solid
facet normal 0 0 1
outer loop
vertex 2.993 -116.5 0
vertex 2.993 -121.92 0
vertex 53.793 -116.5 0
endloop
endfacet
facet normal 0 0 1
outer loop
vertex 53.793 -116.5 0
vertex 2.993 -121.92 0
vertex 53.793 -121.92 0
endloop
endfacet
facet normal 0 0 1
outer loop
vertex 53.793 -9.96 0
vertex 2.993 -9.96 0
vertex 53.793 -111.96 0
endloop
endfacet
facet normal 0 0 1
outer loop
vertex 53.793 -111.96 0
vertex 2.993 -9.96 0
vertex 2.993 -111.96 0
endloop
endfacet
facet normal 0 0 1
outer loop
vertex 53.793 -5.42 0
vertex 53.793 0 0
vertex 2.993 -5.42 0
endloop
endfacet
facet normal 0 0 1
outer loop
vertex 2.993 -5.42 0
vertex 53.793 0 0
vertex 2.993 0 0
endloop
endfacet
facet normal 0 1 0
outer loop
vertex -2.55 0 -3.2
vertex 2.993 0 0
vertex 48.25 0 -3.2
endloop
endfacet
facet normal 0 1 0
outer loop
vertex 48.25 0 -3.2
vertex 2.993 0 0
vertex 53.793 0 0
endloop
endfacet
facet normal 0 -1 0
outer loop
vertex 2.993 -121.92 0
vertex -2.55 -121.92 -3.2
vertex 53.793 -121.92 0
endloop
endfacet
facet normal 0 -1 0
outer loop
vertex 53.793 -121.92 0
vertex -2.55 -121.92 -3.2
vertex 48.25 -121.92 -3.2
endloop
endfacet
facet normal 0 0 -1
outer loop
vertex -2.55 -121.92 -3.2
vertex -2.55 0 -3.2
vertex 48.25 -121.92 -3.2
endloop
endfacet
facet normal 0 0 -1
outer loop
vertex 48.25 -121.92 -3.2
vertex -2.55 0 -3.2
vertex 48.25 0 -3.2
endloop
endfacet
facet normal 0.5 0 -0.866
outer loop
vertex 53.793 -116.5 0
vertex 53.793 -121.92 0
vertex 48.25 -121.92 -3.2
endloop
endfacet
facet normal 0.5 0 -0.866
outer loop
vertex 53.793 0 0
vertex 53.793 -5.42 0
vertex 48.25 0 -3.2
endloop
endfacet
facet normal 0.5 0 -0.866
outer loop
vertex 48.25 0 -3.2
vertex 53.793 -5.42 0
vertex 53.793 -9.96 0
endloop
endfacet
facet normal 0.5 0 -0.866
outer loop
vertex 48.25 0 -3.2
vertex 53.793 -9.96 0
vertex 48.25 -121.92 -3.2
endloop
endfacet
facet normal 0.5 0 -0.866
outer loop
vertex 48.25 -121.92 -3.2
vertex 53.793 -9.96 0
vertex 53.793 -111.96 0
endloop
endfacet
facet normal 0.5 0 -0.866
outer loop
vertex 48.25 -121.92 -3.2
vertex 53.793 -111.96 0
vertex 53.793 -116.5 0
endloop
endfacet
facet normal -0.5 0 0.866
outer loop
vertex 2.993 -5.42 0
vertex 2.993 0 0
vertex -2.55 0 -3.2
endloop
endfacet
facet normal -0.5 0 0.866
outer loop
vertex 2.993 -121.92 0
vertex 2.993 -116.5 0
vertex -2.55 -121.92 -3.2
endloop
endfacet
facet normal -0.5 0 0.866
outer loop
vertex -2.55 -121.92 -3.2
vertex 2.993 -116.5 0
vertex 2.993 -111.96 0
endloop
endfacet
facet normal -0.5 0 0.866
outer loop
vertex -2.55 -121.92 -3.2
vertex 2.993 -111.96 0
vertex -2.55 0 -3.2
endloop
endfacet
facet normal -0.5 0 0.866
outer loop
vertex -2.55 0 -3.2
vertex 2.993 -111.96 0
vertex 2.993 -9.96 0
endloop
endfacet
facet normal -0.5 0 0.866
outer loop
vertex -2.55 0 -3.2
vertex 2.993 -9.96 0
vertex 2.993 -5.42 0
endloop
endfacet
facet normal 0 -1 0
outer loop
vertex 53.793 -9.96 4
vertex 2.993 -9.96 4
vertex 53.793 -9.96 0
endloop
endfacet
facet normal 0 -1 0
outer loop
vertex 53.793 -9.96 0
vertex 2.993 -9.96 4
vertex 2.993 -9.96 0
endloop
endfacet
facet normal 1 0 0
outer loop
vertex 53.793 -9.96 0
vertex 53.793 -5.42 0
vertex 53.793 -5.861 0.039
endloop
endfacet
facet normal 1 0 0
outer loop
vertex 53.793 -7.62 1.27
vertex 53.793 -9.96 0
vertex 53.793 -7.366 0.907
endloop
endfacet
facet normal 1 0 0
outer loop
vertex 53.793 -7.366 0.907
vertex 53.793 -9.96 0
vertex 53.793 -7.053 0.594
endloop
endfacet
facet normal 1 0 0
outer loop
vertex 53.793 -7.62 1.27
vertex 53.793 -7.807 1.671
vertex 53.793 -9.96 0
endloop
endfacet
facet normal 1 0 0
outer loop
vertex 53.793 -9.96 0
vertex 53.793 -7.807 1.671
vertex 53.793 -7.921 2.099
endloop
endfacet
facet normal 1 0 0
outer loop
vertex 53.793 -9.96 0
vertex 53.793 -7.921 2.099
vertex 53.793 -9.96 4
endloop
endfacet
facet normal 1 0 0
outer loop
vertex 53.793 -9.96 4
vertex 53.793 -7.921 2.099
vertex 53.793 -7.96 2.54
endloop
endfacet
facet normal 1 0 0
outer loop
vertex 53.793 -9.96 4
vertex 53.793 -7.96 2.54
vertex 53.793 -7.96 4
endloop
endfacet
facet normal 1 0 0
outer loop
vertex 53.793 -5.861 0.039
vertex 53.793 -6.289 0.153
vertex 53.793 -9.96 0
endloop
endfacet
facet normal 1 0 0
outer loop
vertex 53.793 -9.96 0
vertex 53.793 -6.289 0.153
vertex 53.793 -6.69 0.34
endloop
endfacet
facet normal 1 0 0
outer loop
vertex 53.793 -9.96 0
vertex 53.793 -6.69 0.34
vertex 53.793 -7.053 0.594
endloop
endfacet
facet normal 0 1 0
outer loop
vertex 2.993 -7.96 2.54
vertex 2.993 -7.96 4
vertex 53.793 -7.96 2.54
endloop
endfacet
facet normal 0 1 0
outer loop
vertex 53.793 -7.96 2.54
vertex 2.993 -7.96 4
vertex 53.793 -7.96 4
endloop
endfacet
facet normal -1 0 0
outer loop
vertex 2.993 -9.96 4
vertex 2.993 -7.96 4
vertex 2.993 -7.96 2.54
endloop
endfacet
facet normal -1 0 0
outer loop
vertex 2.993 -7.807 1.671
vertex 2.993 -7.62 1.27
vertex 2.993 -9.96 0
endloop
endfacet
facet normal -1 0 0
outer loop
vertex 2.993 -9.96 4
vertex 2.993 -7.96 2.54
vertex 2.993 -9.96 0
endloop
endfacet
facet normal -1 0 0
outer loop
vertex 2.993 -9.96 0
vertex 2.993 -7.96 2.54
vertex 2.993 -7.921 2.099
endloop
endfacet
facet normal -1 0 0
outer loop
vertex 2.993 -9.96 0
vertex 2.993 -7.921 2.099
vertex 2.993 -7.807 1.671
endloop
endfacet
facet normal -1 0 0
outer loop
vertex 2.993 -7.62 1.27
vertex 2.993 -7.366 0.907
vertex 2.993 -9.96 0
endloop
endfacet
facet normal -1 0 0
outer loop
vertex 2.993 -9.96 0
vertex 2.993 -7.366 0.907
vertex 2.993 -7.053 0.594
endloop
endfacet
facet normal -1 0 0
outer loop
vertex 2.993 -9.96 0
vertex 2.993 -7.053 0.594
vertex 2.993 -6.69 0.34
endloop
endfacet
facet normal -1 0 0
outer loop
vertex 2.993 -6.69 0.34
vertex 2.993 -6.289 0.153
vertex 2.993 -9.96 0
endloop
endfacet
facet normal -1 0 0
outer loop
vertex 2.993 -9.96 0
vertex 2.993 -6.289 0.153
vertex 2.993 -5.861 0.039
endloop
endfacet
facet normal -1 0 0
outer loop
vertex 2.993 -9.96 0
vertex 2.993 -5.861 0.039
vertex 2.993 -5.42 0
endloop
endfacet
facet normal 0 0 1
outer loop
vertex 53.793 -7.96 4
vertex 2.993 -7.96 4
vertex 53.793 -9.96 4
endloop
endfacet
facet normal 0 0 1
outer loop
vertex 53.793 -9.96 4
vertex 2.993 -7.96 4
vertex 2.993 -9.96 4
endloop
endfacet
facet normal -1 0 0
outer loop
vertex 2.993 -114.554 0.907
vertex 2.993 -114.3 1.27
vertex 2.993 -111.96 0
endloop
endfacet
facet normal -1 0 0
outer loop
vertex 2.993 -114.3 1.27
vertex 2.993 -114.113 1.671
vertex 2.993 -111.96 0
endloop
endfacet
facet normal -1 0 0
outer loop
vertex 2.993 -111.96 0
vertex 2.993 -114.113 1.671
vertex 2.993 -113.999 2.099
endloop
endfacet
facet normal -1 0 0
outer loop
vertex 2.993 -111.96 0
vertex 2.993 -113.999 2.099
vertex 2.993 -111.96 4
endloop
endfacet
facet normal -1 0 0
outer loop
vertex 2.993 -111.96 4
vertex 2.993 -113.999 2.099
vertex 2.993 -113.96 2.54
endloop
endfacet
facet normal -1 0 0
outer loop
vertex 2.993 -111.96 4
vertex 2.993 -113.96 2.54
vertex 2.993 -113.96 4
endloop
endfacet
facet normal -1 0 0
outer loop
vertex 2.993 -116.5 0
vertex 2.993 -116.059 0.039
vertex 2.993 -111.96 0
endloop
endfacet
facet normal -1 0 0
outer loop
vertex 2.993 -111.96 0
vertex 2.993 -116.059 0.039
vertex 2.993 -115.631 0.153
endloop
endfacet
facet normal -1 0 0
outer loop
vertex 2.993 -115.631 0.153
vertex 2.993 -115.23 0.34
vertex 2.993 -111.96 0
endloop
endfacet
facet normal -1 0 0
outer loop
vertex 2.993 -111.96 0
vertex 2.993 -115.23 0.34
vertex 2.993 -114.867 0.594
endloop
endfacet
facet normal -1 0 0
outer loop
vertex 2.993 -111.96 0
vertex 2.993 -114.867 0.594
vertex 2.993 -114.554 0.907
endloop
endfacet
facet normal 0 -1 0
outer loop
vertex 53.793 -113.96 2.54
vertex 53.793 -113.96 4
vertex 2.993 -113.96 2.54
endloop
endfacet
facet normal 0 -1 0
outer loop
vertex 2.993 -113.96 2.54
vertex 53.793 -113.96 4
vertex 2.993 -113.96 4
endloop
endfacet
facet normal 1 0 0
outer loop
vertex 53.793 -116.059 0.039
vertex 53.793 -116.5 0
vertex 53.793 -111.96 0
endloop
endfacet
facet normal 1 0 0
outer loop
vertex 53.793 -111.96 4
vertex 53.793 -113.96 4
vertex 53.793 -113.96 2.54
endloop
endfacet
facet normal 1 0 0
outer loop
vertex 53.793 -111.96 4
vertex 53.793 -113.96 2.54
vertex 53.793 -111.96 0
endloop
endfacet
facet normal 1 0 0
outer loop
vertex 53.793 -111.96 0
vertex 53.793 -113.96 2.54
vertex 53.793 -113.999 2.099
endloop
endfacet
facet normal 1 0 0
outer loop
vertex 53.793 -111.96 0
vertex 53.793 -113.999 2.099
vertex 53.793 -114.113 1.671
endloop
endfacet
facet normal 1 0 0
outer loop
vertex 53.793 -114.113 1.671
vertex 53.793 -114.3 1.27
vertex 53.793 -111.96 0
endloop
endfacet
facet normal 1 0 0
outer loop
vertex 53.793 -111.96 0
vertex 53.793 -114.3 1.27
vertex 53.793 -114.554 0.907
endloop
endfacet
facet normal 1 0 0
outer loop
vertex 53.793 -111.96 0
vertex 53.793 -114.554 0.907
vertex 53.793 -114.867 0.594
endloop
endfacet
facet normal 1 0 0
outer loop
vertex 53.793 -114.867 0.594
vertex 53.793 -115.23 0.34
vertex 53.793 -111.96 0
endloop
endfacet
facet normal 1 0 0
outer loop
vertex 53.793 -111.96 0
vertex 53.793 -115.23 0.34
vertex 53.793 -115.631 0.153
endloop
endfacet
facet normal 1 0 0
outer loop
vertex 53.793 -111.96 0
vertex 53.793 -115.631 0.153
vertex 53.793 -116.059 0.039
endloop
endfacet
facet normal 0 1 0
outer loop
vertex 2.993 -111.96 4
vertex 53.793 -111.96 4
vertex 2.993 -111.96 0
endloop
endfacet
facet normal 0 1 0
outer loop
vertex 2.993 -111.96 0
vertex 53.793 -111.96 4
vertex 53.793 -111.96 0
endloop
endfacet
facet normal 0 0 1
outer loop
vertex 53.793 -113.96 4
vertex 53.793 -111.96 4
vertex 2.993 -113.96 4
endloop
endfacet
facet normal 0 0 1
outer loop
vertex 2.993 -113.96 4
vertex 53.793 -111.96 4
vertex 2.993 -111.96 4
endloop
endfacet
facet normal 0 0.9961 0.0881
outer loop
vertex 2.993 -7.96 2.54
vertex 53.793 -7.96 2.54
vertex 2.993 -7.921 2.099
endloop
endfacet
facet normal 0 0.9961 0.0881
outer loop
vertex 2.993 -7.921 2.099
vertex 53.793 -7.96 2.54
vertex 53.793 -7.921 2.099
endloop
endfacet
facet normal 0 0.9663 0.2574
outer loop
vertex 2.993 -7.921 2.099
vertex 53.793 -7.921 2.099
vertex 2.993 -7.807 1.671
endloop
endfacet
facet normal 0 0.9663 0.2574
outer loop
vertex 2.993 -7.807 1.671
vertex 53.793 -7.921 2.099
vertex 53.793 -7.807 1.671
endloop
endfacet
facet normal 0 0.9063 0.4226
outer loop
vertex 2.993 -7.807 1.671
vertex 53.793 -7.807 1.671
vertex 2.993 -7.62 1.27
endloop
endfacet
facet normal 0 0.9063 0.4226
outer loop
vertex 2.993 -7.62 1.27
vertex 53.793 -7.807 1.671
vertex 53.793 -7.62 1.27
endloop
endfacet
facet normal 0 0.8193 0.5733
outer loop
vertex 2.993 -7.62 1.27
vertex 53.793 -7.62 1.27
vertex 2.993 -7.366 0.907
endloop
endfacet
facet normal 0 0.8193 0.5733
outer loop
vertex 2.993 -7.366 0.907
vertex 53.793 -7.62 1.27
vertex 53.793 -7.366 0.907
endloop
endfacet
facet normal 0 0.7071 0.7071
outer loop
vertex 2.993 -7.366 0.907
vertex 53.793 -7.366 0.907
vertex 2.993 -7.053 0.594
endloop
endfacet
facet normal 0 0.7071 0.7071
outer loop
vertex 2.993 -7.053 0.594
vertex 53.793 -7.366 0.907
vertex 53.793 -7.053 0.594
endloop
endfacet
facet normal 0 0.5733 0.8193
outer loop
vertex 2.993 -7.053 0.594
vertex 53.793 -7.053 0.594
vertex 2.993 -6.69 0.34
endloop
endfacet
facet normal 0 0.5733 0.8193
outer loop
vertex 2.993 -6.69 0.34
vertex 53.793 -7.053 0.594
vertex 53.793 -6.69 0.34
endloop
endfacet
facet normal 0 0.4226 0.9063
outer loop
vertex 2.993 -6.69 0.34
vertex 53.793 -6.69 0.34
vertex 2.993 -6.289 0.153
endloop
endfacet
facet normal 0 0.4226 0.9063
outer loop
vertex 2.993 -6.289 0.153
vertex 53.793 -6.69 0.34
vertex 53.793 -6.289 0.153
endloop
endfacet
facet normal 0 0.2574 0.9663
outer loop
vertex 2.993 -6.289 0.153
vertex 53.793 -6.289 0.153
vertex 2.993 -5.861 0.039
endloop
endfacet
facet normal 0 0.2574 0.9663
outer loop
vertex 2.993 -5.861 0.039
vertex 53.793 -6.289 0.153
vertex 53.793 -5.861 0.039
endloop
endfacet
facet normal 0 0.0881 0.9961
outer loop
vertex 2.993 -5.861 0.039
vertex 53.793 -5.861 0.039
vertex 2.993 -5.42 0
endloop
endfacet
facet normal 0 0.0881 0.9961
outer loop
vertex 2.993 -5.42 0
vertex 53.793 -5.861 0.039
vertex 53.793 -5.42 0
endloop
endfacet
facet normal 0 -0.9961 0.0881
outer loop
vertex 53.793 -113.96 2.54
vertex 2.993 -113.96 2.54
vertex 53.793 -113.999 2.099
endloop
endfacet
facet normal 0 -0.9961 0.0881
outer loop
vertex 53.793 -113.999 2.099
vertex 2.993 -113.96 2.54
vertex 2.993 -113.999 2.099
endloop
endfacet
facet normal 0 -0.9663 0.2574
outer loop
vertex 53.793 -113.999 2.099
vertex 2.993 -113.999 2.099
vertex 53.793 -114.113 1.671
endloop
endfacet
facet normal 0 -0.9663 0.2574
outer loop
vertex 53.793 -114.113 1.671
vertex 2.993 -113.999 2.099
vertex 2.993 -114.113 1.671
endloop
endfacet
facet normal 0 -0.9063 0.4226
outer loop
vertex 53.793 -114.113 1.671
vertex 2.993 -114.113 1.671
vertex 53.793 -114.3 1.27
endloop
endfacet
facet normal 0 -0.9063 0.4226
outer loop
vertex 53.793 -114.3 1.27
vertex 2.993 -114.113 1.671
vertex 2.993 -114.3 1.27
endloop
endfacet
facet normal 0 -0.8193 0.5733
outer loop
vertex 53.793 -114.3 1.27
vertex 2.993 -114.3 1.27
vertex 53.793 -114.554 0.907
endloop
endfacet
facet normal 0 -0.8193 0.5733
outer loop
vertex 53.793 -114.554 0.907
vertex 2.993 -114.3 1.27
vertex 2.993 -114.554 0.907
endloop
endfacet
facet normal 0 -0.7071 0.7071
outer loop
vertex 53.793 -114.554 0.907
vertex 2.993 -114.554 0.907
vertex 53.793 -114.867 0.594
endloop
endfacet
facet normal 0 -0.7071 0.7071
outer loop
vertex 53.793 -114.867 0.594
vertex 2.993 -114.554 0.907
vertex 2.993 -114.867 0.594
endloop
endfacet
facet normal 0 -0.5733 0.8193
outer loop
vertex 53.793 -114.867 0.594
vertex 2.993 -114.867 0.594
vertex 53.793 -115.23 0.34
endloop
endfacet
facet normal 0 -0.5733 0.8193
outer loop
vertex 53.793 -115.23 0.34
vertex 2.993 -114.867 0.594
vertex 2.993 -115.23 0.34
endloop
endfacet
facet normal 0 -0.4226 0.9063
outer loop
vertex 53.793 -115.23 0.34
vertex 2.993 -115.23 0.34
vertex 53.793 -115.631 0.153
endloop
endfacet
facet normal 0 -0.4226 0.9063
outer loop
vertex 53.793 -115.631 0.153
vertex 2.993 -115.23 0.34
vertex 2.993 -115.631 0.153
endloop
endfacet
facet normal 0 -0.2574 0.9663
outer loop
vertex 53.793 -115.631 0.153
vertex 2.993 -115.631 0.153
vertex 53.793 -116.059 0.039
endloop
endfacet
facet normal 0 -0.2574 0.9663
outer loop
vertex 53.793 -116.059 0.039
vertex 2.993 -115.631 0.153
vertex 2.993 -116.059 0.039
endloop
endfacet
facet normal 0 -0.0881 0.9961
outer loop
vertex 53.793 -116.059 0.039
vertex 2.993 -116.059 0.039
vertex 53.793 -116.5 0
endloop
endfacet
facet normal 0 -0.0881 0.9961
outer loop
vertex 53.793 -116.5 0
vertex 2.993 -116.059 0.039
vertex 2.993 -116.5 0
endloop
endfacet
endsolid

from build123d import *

# Parameters (mm, degrees)
SKETCH1_W           = 50.8
SKETCH1_H           = 121.92
BOSS_EXTRUDE1_DEPTH = 3.2
CUT_EXTRUDE1_DEPTH  = 122.92
BOSS_EXTRUDE2_DEPTH = 121.92
SKETCH5_W           = 50.8
SKETCH5_H           = 2
BOSS_EXTRUDE3_DEPTH = 4
FILLET1_R           = 2.54


with BuildPart() as part:
    # Sketch1 → Boss-Extrude1 (new body)
    with BuildSketch(Plane.XY):
        with Locations((28.39261314, -60.96)):
            Rectangle(SKETCH1_W, SKETCH1_H)
    extrude(amount=-BOSS_EXTRUDE1_DEPTH)

    # Sketch2 → Cut-Extrude1 (cut, through all)
    with BuildSketch(Plane.XZ.offset(121.92)):
        Polygon((53.79261314, 0), (53.79261314, -3.2), (48.250050556, -3.2), align=None)
    extrude(amount=-CUT_EXTRUDE1_DEPTH, mode=Mode.SUBTRACT)

    # Sketch4 → Boss-Extrude2 (add)
    with BuildSketch(Plane.XZ.offset(121.92)):
        Polygon((2.99261314, 0), (2.99261314, -3.2), (-2.549949444, -3.2), align=None)
    extrude(amount=-BOSS_EXTRUDE2_DEPTH)

    # Sketch5 → Boss-Extrude3 (add)
    with BuildSketch(Plane.XY):
        with Locations((28.39261314, -8.96)):
            Rectangle(SKETCH5_W, SKETCH5_H)
        with Locations((28.39261314, -112.96)):
            Rectangle(SKETCH5_W, SKETCH5_H)
    extrude(amount=BOSS_EXTRUDE3_DEPTH)

    # Fillet1
    fillet1_edges = [part.edges().sort_by_distance(p)[0] for p in [
        (28.39261314, -7.96, 0),
        (28.39261314, -113.96, 0),
    ]]
    fillet(fillet1_edges, radius=FILLET1_R)


solid = part.part
